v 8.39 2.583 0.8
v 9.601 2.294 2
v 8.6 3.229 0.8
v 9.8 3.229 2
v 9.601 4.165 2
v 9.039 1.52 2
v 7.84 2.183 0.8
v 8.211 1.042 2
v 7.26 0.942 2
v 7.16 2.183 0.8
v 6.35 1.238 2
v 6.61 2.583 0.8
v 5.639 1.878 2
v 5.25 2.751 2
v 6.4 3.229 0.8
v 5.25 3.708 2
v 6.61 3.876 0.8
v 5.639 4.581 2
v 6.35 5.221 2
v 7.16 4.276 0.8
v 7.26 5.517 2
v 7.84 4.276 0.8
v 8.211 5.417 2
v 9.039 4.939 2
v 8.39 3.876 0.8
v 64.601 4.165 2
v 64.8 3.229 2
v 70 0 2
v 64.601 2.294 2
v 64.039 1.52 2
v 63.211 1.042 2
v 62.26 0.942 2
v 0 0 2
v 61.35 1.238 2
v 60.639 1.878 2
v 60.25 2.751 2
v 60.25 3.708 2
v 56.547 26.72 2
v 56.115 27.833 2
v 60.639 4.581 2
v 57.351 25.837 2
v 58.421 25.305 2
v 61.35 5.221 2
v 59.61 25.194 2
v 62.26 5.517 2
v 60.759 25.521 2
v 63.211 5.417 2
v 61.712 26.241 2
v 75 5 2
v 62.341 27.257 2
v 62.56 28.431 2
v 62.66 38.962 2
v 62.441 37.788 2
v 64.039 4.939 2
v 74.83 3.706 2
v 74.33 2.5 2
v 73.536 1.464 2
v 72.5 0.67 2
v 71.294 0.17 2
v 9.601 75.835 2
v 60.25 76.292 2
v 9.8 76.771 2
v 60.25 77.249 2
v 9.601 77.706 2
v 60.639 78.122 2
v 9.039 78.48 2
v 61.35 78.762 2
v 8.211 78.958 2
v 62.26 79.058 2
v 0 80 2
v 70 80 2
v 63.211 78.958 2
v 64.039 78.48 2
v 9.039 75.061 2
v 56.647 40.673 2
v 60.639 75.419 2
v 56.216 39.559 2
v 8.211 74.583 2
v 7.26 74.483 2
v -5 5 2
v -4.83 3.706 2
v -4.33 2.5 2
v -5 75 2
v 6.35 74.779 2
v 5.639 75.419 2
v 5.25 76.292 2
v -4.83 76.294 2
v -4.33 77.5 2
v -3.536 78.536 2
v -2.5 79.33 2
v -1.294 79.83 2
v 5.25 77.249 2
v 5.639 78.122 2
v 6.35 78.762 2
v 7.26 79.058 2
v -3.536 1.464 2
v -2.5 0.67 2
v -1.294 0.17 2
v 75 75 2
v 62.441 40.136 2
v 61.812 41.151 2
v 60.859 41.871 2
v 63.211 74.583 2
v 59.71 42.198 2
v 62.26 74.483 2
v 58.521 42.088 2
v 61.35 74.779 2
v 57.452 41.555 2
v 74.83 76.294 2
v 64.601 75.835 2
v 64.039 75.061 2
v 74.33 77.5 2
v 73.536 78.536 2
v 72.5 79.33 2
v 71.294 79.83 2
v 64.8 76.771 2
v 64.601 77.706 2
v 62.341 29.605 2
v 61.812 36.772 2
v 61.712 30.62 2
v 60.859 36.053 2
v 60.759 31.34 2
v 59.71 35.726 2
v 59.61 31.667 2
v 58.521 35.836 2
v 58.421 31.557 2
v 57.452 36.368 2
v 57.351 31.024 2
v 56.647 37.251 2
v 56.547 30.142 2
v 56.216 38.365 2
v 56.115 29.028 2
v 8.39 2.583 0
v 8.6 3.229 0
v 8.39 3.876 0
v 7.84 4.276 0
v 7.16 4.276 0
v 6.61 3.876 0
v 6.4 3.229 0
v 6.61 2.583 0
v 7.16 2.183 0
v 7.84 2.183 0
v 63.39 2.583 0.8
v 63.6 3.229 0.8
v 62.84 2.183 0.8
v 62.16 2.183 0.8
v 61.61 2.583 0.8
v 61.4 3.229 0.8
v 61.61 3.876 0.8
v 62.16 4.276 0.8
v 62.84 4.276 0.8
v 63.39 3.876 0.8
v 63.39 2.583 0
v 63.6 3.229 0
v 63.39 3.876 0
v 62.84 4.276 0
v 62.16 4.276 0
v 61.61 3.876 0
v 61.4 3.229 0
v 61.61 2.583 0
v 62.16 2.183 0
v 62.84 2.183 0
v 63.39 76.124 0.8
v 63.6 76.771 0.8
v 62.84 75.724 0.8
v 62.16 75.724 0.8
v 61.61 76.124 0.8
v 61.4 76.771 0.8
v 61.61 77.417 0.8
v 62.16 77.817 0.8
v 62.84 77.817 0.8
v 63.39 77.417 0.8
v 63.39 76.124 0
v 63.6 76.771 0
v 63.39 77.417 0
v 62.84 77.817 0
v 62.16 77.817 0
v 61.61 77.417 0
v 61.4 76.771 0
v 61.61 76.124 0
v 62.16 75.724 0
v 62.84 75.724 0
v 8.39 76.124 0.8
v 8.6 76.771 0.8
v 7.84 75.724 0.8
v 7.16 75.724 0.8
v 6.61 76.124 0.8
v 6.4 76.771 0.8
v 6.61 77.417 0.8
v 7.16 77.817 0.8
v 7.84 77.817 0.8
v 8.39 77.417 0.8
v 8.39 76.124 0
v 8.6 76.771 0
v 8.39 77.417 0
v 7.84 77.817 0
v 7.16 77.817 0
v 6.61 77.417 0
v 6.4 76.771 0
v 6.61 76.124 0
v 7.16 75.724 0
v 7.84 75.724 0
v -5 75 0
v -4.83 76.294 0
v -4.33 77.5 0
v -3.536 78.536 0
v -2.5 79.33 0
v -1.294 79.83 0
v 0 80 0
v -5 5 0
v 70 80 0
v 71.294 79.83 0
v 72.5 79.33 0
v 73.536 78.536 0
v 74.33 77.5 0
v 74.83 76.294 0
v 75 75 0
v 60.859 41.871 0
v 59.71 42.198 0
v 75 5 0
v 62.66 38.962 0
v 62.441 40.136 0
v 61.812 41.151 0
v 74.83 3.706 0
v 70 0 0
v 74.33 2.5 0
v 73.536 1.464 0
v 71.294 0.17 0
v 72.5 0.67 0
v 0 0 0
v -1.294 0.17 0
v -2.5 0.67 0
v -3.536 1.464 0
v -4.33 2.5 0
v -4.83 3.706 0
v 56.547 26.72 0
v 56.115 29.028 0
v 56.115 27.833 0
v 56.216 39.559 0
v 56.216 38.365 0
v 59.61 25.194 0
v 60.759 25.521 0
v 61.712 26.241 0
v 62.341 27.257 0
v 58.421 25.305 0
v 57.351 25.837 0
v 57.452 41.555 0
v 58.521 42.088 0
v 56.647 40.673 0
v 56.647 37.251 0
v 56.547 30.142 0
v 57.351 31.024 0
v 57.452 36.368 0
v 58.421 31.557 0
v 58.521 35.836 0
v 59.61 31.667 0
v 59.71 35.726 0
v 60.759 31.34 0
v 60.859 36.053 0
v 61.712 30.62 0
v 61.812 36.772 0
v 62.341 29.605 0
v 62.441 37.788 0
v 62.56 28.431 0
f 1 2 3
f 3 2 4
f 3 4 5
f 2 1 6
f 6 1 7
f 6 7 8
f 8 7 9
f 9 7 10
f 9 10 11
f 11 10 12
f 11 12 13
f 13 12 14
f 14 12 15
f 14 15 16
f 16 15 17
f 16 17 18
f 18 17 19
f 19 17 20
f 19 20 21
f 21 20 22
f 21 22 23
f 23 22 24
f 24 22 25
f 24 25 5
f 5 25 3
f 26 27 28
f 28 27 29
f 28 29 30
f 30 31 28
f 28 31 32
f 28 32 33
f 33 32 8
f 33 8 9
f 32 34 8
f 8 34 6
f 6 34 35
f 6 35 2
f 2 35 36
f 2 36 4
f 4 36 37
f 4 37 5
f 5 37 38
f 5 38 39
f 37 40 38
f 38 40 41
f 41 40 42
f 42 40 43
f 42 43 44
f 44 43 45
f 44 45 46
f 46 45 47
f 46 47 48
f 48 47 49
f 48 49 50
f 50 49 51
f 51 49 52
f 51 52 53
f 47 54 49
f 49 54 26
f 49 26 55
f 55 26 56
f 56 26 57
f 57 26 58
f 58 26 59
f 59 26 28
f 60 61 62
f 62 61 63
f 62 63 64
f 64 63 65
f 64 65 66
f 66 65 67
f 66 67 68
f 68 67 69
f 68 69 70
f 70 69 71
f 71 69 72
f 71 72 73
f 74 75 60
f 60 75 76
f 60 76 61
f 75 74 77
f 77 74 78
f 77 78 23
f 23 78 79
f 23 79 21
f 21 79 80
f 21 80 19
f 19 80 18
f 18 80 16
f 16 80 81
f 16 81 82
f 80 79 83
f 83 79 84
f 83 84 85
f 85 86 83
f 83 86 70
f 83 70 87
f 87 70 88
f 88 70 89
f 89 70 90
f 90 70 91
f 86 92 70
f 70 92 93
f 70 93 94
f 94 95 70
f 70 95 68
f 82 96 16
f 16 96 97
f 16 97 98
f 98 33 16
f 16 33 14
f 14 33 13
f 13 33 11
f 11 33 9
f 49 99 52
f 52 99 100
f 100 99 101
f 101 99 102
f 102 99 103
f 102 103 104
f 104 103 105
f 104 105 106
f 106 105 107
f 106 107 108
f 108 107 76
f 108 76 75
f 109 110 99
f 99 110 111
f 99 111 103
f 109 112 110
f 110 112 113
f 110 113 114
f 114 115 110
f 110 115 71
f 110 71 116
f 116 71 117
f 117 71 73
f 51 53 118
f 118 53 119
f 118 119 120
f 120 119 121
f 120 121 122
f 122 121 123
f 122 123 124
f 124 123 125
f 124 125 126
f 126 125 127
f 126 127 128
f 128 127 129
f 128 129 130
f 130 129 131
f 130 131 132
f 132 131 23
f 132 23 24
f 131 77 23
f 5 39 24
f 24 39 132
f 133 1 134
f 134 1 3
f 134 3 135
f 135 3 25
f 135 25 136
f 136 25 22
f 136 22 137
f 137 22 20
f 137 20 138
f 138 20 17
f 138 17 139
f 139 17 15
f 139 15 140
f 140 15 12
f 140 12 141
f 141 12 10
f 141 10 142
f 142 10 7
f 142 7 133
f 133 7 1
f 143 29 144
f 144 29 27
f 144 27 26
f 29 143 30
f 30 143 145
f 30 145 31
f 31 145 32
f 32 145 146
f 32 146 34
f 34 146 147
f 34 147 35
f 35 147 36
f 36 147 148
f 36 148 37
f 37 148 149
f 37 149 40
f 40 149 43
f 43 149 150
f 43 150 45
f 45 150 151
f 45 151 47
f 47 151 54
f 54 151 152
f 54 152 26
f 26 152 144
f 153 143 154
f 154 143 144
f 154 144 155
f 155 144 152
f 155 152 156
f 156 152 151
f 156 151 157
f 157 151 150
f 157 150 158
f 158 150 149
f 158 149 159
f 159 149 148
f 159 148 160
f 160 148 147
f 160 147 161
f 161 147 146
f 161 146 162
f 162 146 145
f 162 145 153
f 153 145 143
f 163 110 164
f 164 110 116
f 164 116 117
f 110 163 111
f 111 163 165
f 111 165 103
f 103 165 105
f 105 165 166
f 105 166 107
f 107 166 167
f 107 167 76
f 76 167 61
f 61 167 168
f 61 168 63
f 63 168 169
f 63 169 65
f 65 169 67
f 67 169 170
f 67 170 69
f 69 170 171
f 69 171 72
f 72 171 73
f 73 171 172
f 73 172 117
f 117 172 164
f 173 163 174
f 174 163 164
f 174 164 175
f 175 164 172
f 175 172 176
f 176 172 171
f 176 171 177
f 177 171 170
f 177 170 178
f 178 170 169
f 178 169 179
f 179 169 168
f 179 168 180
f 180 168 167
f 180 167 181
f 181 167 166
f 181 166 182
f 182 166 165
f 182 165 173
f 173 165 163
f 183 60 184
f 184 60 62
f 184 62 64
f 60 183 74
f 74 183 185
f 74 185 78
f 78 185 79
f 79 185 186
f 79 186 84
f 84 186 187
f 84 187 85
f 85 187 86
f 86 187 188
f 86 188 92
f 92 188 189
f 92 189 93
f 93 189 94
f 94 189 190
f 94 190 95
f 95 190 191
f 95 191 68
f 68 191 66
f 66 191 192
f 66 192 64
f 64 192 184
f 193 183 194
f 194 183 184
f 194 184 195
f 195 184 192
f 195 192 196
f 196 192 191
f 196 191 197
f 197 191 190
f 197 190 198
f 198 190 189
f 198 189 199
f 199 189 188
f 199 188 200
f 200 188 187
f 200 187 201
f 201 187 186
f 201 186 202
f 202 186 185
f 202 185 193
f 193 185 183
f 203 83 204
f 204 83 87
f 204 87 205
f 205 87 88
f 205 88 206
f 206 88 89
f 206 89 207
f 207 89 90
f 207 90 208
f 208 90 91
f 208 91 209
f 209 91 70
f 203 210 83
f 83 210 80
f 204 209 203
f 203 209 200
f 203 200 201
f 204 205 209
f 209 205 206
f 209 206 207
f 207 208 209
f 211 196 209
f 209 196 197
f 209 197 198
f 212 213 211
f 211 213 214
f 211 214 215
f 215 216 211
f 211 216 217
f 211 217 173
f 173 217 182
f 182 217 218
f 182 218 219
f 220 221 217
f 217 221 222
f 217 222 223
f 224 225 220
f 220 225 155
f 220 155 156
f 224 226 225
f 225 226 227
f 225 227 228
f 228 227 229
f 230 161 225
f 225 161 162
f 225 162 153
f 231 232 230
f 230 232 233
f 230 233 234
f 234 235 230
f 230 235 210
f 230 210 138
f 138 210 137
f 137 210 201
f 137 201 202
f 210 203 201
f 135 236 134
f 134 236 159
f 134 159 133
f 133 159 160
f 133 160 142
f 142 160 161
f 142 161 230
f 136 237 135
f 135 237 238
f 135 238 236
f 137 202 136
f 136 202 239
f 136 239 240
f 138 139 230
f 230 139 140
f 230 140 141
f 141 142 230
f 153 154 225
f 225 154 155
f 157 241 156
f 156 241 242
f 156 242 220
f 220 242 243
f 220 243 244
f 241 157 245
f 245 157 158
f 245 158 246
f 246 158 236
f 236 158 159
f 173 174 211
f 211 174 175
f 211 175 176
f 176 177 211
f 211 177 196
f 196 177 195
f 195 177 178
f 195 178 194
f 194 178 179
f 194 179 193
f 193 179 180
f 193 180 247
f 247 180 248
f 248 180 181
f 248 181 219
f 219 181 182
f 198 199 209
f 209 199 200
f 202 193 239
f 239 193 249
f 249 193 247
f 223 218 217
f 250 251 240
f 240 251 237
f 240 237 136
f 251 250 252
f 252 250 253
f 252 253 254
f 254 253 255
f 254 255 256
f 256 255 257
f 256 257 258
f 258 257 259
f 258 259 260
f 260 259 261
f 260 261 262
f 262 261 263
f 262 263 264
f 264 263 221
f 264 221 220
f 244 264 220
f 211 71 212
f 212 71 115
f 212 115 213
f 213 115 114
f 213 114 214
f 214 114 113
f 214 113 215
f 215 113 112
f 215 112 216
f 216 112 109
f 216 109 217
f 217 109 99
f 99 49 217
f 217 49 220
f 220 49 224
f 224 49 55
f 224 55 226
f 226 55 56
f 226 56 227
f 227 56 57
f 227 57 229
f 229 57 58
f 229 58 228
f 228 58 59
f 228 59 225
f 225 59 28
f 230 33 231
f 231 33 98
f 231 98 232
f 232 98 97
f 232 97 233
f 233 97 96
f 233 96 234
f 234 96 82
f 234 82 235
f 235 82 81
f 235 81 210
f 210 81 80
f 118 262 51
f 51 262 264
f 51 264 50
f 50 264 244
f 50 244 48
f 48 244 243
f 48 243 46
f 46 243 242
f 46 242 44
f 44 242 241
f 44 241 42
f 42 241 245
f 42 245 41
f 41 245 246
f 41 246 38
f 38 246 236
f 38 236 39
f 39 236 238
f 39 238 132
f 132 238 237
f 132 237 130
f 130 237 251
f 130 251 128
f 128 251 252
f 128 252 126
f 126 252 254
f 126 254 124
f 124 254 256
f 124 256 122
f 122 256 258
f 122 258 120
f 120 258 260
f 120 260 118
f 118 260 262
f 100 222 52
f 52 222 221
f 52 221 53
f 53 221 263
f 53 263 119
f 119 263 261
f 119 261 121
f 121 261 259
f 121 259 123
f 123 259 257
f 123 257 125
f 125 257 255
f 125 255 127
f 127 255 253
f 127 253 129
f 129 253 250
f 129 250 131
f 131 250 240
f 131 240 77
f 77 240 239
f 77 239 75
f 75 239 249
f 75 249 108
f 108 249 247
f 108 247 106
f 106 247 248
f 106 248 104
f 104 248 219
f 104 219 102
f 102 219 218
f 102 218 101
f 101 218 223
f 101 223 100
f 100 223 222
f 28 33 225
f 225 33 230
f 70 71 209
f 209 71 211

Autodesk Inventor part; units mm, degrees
ref_plane "YZ Plane" through (0, 0, 0) normal (1, 0, 0) x (0, 1, 0)
ref_plane "XZ Plane" through (0, 0, 0) normal (0, 1, 0) x (-1, 0, 0)
ref_plane "XY Plane" through (0, 0, 0) normal (0, 0, 1) x (1, 0, 0)
sketch "Эскиз2" plane through (0, 0, 0) normal (0, 0, 1) x (1, 0, 0)
  line L0 (70, 80) -> (0, 80)
  line L1 (-5, 75) -> (-5, 5)
  line L2 (75, 5) -> (75, 75)
  line L3 (0, 0) -> (70, 0)
  line L4 (70, 73.5411) -> (70, 6.4589)
  line L5 (0, 73.5411) -> (70, 73.5411)
  line L6 (0, 6.4589) -> (0, 73.5411)
  line L7 (70, 6.4589) -> (0, 6.4589)
  arc A0 (8.6686, 75.4679) -> (8.8027, 75.602) centre (7.5, 76.7706) ccw
  circle A1 centre (7.5, 76.7706) radius 1.1
  circle A2 centre (62.5, 76.7706) radius 1.1
  circle A3 centre (62.5, 3.2294) radius 1.1
  circle A4 centre (7.5, 3.2294) radius 1.1
  line L8 (-5, 75) -> (-5, 80)
  line L9 (-5, 80) -> (0, 80)
  line L10 (70, 80) -> (75, 80)
  line L11 (75, 80) -> (75, 75)
  line L12 (75, 5) -> (75, 0)
  line L13 (75, 0) -> (70, 0)
  line L14 (0, 0) -> (-5, 0)
  line L15 (-5, 5) -> (-5, 0)
  circle A5 centre (59.4102, 38.9619) radius 3.25
  circle A6 centre (59.31, 28.4306) radius 3.25
  dimension "d8" = 2.2
  dimension "d9" = 2.2
  dimension "d10" = 2.2
  dimension "d11" = 2.2
  dimension "d12" = 6.5
  dimension "d13" = 6.5
extrude "Выдавливание2" add sketch "Эскиз2" along normal blind 2 contours L10 L11 L2 L12 L13 L3 L14 L15 L1 L8 L9 L0 | L4 L7 L6 L5
fillet "Сопряжение2" radius 5 4 edges at (-5, 0, 1) (75, 0, 1) (75, 80, 1) (-5, 80, 1)
chamfer "Фаска1" distance 1.2 angle 45 4 edges at (6.4, 76.7706, 2) (61.4, 76.7706, 2) (61.4, 3.2294, 2) (6.4, 3.2294, 2)
properties part number "Case_Cover"
